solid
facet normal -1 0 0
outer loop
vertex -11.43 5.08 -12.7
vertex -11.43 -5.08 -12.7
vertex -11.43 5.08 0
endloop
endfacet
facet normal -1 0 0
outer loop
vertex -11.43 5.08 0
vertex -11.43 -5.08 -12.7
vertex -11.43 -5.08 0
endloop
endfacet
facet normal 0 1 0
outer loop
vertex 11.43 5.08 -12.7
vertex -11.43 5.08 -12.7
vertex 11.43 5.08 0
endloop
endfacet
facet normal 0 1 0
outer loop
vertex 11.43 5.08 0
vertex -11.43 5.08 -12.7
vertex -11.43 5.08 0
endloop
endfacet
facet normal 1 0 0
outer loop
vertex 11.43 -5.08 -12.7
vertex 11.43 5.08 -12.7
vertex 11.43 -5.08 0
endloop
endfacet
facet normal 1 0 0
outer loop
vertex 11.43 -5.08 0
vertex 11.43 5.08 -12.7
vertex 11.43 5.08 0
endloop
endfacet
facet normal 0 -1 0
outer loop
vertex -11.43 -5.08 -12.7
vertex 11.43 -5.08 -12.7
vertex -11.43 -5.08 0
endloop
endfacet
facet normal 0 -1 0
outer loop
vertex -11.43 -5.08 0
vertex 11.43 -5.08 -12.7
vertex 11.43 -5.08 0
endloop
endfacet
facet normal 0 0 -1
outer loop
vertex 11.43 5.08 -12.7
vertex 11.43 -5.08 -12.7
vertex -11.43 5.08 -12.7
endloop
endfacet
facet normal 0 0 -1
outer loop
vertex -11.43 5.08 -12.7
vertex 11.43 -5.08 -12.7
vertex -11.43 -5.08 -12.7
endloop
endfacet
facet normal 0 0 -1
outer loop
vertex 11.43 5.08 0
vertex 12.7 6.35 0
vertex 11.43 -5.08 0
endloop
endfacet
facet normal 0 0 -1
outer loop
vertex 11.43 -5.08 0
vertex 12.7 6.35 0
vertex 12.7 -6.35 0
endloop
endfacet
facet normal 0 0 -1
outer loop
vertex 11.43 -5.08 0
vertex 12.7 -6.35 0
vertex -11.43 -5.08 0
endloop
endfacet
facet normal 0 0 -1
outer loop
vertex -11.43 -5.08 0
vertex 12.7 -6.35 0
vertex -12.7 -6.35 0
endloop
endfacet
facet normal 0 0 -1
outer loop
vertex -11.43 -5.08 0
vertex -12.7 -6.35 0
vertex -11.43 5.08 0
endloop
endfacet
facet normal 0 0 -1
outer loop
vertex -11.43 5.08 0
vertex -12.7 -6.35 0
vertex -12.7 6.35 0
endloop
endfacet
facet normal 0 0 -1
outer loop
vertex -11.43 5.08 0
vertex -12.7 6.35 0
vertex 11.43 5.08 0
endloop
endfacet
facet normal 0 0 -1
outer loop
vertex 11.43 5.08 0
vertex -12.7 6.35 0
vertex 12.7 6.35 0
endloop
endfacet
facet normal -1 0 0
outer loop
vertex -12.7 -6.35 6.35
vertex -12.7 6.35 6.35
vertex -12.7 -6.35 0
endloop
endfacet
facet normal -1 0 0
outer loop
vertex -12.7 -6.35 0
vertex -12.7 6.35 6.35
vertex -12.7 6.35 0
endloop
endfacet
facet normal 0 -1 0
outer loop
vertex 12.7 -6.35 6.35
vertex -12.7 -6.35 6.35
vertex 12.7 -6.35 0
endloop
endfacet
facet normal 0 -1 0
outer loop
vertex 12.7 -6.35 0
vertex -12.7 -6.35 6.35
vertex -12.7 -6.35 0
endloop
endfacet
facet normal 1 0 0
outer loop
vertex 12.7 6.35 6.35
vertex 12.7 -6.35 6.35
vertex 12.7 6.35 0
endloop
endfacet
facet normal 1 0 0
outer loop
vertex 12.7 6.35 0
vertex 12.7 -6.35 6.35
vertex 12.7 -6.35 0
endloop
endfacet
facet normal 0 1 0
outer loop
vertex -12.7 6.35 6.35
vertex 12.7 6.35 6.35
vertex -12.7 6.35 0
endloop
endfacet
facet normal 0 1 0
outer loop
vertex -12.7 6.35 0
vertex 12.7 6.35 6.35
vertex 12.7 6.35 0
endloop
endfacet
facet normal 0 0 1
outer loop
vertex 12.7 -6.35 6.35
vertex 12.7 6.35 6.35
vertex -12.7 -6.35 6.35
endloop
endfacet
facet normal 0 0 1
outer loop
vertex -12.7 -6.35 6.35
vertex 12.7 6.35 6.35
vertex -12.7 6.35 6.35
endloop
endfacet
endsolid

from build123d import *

# Parameters (mm, degrees)
SKETCH1_W           = 22.86
SKETCH1_H           = 10.16
BOSS_EXTRUDE1_DEPTH = 12.7
SKETCH2_W           = 25.4
SKETCH2_H           = 12.7
BOSS_EXTRUDE2_DEPTH = 6.35


with BuildPart() as part:
    # Sketch1 → Boss-Extrude1 (new body)
    with BuildSketch(Plane.XY):
        Rectangle(SKETCH1_W, SKETCH1_H)
    extrude(amount=-BOSS_EXTRUDE1_DEPTH)

    # Sketch2 → Boss-Extrude2 (add)
    with BuildSketch(Plane.XY):
        Rectangle(SKETCH2_W, SKETCH2_H)
    extrude(amount=BOSS_EXTRUDE2_DEPTH)


solid = part.part
